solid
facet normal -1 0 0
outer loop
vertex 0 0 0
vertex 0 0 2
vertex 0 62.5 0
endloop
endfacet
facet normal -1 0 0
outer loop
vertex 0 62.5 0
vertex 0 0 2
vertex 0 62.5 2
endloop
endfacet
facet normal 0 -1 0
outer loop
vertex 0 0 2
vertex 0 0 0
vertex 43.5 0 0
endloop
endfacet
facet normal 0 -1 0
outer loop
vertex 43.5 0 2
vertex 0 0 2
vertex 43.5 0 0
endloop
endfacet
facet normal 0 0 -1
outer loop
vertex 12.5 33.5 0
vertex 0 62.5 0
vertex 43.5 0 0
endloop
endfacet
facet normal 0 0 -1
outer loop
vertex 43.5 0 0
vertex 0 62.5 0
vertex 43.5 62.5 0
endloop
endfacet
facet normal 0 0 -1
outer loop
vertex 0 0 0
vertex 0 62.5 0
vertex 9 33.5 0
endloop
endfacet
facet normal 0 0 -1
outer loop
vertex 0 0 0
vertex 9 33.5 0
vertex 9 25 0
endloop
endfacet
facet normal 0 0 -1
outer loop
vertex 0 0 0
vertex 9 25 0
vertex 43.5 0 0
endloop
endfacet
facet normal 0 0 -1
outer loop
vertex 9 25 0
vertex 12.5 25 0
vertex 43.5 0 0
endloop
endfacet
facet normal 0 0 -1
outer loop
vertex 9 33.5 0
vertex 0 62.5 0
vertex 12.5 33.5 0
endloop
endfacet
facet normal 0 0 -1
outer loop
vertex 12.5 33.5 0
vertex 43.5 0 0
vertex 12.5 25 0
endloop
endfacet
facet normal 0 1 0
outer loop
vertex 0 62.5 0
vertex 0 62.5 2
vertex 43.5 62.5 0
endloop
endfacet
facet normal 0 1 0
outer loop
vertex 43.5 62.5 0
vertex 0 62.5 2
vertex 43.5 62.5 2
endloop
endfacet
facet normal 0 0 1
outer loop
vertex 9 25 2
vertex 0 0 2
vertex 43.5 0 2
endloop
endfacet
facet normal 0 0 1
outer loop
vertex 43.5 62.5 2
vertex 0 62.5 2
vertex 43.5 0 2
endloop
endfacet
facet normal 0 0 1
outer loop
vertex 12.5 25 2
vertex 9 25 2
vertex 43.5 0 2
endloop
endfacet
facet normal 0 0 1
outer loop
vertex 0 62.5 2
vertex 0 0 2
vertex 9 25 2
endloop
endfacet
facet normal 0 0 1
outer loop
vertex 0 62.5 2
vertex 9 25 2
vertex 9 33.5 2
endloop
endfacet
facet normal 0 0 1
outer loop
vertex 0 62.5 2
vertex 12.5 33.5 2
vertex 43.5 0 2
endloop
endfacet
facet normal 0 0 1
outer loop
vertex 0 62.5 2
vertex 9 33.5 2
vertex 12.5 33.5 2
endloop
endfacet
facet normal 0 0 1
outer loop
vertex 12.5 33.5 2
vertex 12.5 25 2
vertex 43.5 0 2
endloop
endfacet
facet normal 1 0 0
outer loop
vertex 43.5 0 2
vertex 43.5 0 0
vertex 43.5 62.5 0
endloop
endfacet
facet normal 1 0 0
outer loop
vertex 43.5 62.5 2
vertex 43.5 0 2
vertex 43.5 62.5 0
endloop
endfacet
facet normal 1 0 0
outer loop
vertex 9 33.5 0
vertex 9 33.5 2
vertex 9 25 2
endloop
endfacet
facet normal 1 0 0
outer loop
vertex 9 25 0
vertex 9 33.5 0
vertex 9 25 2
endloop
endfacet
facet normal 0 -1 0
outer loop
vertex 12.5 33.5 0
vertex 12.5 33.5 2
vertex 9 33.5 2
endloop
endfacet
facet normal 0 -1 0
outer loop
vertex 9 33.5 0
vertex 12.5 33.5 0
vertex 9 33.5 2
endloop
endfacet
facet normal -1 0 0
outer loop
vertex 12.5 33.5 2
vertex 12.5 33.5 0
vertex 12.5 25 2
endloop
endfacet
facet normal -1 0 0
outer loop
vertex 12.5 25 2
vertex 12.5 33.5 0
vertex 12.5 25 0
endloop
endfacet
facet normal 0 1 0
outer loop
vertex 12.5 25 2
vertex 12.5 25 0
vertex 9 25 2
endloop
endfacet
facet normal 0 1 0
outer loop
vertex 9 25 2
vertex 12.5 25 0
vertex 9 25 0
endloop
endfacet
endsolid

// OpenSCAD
//
// Thermal imaging camera Side 2 (Micro-USB connector)
//

difference() {
  // Bottom plate
  cube([43.5, 62.5, 2]);

  // Cutout for USB connector
  translate([9, 25, -1]) {
    cube([3.5, 8.5, 4]);
  }
}
